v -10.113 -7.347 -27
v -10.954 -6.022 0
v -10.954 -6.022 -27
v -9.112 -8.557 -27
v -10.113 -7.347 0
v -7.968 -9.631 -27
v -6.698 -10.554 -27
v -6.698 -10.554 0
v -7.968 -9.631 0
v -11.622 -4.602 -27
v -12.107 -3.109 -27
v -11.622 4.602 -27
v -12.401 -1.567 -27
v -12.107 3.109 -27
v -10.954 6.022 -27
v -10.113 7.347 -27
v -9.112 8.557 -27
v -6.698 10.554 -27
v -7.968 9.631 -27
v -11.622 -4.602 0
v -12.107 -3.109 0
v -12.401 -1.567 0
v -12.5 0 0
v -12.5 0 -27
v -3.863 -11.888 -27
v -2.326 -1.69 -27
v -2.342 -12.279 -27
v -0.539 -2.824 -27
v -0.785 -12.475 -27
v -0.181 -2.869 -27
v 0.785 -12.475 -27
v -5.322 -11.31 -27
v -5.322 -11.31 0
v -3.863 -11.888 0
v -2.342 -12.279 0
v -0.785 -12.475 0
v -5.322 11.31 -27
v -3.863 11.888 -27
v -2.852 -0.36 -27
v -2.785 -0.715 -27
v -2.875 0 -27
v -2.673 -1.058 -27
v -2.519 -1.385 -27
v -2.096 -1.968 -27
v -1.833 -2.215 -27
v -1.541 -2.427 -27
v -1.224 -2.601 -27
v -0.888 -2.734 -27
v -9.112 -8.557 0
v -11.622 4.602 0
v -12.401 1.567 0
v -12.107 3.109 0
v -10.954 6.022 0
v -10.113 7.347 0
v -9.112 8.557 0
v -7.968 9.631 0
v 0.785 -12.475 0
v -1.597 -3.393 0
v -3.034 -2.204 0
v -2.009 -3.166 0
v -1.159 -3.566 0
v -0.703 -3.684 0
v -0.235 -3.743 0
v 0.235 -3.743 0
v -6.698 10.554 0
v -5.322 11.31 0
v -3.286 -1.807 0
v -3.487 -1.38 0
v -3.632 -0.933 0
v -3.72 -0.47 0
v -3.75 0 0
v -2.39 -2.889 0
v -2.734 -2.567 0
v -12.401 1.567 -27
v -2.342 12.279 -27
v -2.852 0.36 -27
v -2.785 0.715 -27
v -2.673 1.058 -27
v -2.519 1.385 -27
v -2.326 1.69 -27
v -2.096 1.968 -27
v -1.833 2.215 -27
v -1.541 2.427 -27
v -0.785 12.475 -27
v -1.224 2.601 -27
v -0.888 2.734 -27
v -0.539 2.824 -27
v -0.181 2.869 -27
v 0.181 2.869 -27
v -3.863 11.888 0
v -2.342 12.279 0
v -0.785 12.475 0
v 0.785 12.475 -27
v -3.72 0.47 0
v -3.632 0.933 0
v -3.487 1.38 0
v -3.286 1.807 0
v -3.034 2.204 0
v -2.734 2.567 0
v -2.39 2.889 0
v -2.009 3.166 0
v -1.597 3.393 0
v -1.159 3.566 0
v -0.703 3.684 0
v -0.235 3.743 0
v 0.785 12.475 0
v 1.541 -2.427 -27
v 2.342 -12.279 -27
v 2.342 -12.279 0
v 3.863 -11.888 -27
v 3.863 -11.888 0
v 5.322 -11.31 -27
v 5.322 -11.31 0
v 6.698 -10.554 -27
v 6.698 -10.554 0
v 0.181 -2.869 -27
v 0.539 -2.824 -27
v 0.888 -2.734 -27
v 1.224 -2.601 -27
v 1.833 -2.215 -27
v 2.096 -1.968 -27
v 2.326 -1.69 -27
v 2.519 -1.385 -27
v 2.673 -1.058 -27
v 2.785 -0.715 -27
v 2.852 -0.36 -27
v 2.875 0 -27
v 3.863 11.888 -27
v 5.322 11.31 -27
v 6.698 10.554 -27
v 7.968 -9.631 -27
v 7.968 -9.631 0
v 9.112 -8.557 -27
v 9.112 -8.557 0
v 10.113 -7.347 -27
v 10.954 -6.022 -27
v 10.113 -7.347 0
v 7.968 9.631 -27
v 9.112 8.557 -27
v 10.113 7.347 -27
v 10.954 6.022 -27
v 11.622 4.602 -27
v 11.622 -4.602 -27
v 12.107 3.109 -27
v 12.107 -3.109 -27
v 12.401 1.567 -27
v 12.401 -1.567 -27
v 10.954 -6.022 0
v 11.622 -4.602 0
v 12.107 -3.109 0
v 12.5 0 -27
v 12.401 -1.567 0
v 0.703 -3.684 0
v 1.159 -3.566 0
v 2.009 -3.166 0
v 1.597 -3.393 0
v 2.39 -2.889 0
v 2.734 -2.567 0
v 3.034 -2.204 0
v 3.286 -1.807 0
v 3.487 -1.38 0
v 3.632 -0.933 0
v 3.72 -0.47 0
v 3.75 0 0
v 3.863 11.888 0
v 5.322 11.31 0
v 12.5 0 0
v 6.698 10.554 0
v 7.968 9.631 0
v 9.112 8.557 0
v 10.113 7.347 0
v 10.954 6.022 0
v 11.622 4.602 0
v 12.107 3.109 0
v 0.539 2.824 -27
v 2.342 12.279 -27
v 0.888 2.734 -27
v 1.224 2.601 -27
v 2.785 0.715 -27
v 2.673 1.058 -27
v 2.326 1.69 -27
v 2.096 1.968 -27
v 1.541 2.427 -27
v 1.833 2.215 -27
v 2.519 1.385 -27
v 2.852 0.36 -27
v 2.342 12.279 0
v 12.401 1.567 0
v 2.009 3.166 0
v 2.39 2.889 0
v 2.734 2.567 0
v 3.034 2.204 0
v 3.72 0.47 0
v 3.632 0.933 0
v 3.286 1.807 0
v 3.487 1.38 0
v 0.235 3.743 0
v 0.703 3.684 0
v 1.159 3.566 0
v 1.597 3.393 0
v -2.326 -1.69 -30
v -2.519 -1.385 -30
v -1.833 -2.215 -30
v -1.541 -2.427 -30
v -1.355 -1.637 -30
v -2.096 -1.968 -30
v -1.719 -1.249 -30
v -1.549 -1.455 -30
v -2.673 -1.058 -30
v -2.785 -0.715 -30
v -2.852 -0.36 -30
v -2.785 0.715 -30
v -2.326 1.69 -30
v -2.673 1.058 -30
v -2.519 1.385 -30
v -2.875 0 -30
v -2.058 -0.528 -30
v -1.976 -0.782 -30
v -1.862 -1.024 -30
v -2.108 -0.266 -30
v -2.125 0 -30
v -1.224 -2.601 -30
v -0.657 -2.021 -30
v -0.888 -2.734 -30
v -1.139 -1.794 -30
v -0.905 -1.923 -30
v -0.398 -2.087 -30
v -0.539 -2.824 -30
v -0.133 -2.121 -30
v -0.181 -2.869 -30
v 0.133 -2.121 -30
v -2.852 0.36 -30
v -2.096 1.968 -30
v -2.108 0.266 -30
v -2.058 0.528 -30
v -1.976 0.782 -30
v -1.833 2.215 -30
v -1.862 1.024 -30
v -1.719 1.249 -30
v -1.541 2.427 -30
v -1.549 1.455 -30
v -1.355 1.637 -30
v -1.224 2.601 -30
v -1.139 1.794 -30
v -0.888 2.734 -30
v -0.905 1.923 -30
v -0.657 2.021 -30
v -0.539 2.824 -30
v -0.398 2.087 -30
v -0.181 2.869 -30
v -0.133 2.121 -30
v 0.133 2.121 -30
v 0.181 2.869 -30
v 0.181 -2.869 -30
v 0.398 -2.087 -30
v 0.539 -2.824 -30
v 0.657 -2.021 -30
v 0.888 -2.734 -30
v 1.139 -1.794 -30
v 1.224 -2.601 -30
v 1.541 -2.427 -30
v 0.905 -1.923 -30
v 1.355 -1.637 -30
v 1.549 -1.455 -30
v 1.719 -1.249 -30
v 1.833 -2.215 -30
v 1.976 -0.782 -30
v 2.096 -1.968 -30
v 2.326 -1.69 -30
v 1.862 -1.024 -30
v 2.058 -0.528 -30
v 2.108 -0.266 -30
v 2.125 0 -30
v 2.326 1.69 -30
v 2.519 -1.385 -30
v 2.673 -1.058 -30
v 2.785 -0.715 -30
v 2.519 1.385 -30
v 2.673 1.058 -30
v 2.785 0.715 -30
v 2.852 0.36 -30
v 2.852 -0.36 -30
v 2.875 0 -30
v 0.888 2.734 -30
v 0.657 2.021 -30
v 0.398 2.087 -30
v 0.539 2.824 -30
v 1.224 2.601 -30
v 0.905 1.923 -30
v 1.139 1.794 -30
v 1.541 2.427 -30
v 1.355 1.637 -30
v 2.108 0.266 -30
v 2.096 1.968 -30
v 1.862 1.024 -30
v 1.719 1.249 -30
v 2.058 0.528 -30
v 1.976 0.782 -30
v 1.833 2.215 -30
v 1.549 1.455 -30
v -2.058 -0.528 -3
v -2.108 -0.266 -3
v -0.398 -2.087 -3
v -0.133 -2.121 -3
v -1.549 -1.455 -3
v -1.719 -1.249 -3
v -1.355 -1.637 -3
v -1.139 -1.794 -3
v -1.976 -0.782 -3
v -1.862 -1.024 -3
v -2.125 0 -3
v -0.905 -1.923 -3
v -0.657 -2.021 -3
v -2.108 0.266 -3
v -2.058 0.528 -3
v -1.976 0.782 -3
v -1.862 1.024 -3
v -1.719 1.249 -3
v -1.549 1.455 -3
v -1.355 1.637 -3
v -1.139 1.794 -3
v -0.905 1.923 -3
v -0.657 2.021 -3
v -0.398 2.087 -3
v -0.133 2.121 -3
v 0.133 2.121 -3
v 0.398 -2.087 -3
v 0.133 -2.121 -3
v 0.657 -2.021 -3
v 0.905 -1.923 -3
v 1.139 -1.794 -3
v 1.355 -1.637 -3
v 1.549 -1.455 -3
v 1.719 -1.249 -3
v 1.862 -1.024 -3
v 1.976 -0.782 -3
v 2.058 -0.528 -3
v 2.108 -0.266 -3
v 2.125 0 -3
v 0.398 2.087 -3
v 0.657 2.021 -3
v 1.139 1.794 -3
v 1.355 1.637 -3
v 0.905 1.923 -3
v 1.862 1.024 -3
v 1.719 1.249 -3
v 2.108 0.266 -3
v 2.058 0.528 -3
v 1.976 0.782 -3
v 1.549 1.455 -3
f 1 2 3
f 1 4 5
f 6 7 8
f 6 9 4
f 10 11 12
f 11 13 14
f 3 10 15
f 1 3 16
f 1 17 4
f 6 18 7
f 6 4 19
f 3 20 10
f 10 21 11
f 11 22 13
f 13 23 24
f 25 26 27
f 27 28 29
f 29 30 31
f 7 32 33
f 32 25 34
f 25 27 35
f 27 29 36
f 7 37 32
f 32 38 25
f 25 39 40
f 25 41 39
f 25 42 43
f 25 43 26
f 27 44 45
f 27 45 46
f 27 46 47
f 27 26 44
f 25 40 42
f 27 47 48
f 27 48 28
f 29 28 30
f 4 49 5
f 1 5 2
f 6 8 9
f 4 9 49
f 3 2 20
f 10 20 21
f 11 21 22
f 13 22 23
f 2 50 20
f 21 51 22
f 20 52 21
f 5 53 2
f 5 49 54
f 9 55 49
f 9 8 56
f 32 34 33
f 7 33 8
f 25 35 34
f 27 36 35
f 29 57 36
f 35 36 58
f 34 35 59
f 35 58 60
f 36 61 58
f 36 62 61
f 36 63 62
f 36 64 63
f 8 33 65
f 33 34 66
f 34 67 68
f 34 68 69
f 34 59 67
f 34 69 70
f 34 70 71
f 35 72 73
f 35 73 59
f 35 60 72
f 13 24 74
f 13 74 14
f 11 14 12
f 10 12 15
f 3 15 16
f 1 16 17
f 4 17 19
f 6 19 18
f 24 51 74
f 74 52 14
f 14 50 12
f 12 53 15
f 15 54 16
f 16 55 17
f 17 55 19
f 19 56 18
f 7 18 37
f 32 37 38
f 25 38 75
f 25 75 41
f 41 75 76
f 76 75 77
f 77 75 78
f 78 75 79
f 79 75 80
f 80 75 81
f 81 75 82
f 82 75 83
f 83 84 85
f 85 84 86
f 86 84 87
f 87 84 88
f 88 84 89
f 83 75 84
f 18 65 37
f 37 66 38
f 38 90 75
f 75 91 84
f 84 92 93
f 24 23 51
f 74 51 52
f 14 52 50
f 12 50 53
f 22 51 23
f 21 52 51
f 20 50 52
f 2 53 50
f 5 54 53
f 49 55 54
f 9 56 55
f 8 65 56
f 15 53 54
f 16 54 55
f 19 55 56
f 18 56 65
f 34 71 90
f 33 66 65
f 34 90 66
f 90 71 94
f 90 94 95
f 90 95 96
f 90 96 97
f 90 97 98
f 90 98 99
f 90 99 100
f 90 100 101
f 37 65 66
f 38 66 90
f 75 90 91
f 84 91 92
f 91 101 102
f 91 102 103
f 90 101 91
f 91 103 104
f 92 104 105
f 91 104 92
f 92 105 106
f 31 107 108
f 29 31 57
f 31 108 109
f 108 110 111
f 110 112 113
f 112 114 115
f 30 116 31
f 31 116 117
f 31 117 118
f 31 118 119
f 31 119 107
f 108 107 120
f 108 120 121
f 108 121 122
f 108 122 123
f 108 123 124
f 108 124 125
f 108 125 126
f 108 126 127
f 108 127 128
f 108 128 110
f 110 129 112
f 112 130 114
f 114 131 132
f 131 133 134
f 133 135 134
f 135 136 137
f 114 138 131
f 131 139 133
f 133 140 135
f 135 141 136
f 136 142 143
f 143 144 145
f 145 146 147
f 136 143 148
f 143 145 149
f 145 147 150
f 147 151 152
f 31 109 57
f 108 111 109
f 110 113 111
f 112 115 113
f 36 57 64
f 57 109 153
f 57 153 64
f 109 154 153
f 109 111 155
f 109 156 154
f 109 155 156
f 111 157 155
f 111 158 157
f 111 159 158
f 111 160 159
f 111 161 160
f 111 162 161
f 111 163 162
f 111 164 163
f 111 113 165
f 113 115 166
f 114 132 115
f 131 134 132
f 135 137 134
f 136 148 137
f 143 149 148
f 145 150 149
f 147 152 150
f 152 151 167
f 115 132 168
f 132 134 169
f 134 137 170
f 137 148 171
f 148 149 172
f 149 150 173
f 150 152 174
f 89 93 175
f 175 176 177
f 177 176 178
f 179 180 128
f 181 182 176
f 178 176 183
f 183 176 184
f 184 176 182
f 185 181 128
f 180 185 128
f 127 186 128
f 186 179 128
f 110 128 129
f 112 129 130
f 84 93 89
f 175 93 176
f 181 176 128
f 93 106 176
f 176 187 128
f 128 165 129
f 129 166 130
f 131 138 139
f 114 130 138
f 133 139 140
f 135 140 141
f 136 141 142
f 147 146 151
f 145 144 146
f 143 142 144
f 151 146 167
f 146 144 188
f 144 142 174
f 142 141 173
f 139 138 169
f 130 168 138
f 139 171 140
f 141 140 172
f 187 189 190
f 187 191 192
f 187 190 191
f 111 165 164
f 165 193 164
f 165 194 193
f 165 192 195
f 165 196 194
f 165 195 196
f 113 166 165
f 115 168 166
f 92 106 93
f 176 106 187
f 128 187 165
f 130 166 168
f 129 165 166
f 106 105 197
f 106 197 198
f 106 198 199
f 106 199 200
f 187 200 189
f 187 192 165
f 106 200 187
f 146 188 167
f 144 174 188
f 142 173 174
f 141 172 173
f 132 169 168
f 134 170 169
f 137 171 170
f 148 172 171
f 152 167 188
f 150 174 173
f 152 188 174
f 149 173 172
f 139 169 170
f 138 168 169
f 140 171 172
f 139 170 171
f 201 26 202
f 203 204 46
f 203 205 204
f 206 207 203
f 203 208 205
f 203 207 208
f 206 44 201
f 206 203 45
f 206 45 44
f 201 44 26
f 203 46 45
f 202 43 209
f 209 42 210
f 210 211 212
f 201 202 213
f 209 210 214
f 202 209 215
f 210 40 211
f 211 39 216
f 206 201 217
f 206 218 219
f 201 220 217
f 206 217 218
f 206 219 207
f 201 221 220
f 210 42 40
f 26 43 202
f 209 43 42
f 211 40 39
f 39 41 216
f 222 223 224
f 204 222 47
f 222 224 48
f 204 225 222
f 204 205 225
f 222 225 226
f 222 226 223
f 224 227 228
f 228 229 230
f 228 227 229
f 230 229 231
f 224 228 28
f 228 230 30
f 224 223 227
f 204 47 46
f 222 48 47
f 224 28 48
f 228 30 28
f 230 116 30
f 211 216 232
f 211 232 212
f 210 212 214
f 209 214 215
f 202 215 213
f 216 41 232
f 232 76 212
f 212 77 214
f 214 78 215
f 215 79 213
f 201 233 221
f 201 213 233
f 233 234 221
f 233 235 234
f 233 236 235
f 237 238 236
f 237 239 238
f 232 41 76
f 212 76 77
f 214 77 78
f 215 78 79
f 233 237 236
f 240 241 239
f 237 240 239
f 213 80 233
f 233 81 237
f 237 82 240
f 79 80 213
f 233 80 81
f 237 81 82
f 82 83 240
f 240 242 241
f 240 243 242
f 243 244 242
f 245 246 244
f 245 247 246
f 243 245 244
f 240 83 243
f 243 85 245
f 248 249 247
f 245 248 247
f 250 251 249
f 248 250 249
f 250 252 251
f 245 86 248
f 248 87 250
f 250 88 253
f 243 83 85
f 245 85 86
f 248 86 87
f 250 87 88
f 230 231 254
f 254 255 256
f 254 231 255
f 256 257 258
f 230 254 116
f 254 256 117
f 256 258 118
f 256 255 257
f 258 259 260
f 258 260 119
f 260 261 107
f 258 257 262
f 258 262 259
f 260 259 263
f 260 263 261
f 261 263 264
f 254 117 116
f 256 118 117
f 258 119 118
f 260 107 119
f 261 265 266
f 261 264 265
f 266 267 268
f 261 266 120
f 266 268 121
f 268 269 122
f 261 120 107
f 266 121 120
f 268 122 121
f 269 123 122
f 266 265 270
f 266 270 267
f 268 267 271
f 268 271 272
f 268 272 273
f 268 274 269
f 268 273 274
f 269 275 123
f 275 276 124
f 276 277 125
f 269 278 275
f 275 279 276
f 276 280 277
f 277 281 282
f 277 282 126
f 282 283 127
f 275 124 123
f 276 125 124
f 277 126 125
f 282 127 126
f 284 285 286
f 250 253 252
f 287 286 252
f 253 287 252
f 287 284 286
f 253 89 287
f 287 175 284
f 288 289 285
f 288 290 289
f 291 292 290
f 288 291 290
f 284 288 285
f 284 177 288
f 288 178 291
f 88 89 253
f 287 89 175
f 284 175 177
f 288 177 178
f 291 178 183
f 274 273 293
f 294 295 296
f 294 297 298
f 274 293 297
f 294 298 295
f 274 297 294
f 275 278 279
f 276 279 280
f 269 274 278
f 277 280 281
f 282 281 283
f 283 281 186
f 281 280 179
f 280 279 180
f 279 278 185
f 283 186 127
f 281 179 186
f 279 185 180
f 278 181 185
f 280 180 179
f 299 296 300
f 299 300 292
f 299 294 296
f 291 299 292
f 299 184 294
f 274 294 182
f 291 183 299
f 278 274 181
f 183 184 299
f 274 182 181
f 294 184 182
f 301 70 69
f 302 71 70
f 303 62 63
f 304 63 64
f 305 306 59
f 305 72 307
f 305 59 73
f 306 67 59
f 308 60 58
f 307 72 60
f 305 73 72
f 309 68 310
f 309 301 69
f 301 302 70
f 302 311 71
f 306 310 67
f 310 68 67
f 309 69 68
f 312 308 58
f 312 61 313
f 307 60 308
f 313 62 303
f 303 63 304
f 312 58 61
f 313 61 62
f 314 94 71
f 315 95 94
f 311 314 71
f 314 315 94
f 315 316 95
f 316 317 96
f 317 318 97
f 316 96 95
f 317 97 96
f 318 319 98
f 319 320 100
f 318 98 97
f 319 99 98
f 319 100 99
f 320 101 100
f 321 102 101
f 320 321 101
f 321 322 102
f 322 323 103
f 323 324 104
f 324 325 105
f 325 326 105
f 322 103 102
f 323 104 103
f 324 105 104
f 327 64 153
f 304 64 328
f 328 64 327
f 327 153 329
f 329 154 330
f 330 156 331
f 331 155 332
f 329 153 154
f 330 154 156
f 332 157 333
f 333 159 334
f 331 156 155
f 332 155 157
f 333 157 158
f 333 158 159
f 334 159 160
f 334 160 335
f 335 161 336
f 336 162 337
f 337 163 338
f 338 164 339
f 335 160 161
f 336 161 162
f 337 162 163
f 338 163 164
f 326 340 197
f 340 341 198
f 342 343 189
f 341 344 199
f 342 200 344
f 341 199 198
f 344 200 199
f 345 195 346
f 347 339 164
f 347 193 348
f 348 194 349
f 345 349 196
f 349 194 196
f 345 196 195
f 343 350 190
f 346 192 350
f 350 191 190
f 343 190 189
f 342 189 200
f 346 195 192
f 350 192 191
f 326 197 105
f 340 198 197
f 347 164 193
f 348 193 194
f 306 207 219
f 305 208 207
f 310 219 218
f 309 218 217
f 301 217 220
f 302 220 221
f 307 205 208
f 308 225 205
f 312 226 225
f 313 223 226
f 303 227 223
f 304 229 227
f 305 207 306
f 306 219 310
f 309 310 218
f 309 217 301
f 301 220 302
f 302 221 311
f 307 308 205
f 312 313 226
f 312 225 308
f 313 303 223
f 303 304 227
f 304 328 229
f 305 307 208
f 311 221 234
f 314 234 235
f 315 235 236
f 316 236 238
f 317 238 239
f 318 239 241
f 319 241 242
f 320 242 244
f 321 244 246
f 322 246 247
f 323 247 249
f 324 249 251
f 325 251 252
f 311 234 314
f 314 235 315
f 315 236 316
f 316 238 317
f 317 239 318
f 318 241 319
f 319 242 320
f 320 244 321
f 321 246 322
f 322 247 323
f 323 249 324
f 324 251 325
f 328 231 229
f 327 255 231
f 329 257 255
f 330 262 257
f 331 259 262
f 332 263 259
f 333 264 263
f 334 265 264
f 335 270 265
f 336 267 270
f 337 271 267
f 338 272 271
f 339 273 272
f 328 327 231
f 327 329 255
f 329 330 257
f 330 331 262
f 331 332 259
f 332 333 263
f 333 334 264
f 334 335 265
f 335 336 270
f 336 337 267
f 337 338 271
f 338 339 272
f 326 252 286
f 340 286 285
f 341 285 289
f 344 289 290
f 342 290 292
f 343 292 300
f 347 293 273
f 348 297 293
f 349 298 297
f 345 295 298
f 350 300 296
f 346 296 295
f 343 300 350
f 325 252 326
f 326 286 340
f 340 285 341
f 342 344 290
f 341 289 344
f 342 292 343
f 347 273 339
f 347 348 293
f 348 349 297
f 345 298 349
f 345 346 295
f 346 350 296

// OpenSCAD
$fn = 50;

difference() {
	union() {
		translate(v = [0, 0, -27.0]) {
			cylinder(h = 27, r = 12.5);
		}
		#translate(v = [0, 0, -30.0]) {
			cylinder(h = 30, r = 2.875);
		}
	}
	union() {
		translate(v = [0, 0, 0]) {
			rotate(a = [0, 0, 0]) {
				difference() {
					union() {
						translate(v = [0, 0, -30.0]) {
							cylinder(h = 30, r = 2.0);
						}
						translate(v = [0, 0, -3]) {
							cylinder(h = 3, r1 = 2.125, r2 = 3.75);
						}
						translate(v = [0, 0, -30.0]) {
							cylinder(h = 30, r = 2.125);
						}
						translate(v = [0, 0, -30.0]) {
							cylinder(h = 30, r = 2.0);
						}
					}
					union();
				}
			}
		}
	}
}
